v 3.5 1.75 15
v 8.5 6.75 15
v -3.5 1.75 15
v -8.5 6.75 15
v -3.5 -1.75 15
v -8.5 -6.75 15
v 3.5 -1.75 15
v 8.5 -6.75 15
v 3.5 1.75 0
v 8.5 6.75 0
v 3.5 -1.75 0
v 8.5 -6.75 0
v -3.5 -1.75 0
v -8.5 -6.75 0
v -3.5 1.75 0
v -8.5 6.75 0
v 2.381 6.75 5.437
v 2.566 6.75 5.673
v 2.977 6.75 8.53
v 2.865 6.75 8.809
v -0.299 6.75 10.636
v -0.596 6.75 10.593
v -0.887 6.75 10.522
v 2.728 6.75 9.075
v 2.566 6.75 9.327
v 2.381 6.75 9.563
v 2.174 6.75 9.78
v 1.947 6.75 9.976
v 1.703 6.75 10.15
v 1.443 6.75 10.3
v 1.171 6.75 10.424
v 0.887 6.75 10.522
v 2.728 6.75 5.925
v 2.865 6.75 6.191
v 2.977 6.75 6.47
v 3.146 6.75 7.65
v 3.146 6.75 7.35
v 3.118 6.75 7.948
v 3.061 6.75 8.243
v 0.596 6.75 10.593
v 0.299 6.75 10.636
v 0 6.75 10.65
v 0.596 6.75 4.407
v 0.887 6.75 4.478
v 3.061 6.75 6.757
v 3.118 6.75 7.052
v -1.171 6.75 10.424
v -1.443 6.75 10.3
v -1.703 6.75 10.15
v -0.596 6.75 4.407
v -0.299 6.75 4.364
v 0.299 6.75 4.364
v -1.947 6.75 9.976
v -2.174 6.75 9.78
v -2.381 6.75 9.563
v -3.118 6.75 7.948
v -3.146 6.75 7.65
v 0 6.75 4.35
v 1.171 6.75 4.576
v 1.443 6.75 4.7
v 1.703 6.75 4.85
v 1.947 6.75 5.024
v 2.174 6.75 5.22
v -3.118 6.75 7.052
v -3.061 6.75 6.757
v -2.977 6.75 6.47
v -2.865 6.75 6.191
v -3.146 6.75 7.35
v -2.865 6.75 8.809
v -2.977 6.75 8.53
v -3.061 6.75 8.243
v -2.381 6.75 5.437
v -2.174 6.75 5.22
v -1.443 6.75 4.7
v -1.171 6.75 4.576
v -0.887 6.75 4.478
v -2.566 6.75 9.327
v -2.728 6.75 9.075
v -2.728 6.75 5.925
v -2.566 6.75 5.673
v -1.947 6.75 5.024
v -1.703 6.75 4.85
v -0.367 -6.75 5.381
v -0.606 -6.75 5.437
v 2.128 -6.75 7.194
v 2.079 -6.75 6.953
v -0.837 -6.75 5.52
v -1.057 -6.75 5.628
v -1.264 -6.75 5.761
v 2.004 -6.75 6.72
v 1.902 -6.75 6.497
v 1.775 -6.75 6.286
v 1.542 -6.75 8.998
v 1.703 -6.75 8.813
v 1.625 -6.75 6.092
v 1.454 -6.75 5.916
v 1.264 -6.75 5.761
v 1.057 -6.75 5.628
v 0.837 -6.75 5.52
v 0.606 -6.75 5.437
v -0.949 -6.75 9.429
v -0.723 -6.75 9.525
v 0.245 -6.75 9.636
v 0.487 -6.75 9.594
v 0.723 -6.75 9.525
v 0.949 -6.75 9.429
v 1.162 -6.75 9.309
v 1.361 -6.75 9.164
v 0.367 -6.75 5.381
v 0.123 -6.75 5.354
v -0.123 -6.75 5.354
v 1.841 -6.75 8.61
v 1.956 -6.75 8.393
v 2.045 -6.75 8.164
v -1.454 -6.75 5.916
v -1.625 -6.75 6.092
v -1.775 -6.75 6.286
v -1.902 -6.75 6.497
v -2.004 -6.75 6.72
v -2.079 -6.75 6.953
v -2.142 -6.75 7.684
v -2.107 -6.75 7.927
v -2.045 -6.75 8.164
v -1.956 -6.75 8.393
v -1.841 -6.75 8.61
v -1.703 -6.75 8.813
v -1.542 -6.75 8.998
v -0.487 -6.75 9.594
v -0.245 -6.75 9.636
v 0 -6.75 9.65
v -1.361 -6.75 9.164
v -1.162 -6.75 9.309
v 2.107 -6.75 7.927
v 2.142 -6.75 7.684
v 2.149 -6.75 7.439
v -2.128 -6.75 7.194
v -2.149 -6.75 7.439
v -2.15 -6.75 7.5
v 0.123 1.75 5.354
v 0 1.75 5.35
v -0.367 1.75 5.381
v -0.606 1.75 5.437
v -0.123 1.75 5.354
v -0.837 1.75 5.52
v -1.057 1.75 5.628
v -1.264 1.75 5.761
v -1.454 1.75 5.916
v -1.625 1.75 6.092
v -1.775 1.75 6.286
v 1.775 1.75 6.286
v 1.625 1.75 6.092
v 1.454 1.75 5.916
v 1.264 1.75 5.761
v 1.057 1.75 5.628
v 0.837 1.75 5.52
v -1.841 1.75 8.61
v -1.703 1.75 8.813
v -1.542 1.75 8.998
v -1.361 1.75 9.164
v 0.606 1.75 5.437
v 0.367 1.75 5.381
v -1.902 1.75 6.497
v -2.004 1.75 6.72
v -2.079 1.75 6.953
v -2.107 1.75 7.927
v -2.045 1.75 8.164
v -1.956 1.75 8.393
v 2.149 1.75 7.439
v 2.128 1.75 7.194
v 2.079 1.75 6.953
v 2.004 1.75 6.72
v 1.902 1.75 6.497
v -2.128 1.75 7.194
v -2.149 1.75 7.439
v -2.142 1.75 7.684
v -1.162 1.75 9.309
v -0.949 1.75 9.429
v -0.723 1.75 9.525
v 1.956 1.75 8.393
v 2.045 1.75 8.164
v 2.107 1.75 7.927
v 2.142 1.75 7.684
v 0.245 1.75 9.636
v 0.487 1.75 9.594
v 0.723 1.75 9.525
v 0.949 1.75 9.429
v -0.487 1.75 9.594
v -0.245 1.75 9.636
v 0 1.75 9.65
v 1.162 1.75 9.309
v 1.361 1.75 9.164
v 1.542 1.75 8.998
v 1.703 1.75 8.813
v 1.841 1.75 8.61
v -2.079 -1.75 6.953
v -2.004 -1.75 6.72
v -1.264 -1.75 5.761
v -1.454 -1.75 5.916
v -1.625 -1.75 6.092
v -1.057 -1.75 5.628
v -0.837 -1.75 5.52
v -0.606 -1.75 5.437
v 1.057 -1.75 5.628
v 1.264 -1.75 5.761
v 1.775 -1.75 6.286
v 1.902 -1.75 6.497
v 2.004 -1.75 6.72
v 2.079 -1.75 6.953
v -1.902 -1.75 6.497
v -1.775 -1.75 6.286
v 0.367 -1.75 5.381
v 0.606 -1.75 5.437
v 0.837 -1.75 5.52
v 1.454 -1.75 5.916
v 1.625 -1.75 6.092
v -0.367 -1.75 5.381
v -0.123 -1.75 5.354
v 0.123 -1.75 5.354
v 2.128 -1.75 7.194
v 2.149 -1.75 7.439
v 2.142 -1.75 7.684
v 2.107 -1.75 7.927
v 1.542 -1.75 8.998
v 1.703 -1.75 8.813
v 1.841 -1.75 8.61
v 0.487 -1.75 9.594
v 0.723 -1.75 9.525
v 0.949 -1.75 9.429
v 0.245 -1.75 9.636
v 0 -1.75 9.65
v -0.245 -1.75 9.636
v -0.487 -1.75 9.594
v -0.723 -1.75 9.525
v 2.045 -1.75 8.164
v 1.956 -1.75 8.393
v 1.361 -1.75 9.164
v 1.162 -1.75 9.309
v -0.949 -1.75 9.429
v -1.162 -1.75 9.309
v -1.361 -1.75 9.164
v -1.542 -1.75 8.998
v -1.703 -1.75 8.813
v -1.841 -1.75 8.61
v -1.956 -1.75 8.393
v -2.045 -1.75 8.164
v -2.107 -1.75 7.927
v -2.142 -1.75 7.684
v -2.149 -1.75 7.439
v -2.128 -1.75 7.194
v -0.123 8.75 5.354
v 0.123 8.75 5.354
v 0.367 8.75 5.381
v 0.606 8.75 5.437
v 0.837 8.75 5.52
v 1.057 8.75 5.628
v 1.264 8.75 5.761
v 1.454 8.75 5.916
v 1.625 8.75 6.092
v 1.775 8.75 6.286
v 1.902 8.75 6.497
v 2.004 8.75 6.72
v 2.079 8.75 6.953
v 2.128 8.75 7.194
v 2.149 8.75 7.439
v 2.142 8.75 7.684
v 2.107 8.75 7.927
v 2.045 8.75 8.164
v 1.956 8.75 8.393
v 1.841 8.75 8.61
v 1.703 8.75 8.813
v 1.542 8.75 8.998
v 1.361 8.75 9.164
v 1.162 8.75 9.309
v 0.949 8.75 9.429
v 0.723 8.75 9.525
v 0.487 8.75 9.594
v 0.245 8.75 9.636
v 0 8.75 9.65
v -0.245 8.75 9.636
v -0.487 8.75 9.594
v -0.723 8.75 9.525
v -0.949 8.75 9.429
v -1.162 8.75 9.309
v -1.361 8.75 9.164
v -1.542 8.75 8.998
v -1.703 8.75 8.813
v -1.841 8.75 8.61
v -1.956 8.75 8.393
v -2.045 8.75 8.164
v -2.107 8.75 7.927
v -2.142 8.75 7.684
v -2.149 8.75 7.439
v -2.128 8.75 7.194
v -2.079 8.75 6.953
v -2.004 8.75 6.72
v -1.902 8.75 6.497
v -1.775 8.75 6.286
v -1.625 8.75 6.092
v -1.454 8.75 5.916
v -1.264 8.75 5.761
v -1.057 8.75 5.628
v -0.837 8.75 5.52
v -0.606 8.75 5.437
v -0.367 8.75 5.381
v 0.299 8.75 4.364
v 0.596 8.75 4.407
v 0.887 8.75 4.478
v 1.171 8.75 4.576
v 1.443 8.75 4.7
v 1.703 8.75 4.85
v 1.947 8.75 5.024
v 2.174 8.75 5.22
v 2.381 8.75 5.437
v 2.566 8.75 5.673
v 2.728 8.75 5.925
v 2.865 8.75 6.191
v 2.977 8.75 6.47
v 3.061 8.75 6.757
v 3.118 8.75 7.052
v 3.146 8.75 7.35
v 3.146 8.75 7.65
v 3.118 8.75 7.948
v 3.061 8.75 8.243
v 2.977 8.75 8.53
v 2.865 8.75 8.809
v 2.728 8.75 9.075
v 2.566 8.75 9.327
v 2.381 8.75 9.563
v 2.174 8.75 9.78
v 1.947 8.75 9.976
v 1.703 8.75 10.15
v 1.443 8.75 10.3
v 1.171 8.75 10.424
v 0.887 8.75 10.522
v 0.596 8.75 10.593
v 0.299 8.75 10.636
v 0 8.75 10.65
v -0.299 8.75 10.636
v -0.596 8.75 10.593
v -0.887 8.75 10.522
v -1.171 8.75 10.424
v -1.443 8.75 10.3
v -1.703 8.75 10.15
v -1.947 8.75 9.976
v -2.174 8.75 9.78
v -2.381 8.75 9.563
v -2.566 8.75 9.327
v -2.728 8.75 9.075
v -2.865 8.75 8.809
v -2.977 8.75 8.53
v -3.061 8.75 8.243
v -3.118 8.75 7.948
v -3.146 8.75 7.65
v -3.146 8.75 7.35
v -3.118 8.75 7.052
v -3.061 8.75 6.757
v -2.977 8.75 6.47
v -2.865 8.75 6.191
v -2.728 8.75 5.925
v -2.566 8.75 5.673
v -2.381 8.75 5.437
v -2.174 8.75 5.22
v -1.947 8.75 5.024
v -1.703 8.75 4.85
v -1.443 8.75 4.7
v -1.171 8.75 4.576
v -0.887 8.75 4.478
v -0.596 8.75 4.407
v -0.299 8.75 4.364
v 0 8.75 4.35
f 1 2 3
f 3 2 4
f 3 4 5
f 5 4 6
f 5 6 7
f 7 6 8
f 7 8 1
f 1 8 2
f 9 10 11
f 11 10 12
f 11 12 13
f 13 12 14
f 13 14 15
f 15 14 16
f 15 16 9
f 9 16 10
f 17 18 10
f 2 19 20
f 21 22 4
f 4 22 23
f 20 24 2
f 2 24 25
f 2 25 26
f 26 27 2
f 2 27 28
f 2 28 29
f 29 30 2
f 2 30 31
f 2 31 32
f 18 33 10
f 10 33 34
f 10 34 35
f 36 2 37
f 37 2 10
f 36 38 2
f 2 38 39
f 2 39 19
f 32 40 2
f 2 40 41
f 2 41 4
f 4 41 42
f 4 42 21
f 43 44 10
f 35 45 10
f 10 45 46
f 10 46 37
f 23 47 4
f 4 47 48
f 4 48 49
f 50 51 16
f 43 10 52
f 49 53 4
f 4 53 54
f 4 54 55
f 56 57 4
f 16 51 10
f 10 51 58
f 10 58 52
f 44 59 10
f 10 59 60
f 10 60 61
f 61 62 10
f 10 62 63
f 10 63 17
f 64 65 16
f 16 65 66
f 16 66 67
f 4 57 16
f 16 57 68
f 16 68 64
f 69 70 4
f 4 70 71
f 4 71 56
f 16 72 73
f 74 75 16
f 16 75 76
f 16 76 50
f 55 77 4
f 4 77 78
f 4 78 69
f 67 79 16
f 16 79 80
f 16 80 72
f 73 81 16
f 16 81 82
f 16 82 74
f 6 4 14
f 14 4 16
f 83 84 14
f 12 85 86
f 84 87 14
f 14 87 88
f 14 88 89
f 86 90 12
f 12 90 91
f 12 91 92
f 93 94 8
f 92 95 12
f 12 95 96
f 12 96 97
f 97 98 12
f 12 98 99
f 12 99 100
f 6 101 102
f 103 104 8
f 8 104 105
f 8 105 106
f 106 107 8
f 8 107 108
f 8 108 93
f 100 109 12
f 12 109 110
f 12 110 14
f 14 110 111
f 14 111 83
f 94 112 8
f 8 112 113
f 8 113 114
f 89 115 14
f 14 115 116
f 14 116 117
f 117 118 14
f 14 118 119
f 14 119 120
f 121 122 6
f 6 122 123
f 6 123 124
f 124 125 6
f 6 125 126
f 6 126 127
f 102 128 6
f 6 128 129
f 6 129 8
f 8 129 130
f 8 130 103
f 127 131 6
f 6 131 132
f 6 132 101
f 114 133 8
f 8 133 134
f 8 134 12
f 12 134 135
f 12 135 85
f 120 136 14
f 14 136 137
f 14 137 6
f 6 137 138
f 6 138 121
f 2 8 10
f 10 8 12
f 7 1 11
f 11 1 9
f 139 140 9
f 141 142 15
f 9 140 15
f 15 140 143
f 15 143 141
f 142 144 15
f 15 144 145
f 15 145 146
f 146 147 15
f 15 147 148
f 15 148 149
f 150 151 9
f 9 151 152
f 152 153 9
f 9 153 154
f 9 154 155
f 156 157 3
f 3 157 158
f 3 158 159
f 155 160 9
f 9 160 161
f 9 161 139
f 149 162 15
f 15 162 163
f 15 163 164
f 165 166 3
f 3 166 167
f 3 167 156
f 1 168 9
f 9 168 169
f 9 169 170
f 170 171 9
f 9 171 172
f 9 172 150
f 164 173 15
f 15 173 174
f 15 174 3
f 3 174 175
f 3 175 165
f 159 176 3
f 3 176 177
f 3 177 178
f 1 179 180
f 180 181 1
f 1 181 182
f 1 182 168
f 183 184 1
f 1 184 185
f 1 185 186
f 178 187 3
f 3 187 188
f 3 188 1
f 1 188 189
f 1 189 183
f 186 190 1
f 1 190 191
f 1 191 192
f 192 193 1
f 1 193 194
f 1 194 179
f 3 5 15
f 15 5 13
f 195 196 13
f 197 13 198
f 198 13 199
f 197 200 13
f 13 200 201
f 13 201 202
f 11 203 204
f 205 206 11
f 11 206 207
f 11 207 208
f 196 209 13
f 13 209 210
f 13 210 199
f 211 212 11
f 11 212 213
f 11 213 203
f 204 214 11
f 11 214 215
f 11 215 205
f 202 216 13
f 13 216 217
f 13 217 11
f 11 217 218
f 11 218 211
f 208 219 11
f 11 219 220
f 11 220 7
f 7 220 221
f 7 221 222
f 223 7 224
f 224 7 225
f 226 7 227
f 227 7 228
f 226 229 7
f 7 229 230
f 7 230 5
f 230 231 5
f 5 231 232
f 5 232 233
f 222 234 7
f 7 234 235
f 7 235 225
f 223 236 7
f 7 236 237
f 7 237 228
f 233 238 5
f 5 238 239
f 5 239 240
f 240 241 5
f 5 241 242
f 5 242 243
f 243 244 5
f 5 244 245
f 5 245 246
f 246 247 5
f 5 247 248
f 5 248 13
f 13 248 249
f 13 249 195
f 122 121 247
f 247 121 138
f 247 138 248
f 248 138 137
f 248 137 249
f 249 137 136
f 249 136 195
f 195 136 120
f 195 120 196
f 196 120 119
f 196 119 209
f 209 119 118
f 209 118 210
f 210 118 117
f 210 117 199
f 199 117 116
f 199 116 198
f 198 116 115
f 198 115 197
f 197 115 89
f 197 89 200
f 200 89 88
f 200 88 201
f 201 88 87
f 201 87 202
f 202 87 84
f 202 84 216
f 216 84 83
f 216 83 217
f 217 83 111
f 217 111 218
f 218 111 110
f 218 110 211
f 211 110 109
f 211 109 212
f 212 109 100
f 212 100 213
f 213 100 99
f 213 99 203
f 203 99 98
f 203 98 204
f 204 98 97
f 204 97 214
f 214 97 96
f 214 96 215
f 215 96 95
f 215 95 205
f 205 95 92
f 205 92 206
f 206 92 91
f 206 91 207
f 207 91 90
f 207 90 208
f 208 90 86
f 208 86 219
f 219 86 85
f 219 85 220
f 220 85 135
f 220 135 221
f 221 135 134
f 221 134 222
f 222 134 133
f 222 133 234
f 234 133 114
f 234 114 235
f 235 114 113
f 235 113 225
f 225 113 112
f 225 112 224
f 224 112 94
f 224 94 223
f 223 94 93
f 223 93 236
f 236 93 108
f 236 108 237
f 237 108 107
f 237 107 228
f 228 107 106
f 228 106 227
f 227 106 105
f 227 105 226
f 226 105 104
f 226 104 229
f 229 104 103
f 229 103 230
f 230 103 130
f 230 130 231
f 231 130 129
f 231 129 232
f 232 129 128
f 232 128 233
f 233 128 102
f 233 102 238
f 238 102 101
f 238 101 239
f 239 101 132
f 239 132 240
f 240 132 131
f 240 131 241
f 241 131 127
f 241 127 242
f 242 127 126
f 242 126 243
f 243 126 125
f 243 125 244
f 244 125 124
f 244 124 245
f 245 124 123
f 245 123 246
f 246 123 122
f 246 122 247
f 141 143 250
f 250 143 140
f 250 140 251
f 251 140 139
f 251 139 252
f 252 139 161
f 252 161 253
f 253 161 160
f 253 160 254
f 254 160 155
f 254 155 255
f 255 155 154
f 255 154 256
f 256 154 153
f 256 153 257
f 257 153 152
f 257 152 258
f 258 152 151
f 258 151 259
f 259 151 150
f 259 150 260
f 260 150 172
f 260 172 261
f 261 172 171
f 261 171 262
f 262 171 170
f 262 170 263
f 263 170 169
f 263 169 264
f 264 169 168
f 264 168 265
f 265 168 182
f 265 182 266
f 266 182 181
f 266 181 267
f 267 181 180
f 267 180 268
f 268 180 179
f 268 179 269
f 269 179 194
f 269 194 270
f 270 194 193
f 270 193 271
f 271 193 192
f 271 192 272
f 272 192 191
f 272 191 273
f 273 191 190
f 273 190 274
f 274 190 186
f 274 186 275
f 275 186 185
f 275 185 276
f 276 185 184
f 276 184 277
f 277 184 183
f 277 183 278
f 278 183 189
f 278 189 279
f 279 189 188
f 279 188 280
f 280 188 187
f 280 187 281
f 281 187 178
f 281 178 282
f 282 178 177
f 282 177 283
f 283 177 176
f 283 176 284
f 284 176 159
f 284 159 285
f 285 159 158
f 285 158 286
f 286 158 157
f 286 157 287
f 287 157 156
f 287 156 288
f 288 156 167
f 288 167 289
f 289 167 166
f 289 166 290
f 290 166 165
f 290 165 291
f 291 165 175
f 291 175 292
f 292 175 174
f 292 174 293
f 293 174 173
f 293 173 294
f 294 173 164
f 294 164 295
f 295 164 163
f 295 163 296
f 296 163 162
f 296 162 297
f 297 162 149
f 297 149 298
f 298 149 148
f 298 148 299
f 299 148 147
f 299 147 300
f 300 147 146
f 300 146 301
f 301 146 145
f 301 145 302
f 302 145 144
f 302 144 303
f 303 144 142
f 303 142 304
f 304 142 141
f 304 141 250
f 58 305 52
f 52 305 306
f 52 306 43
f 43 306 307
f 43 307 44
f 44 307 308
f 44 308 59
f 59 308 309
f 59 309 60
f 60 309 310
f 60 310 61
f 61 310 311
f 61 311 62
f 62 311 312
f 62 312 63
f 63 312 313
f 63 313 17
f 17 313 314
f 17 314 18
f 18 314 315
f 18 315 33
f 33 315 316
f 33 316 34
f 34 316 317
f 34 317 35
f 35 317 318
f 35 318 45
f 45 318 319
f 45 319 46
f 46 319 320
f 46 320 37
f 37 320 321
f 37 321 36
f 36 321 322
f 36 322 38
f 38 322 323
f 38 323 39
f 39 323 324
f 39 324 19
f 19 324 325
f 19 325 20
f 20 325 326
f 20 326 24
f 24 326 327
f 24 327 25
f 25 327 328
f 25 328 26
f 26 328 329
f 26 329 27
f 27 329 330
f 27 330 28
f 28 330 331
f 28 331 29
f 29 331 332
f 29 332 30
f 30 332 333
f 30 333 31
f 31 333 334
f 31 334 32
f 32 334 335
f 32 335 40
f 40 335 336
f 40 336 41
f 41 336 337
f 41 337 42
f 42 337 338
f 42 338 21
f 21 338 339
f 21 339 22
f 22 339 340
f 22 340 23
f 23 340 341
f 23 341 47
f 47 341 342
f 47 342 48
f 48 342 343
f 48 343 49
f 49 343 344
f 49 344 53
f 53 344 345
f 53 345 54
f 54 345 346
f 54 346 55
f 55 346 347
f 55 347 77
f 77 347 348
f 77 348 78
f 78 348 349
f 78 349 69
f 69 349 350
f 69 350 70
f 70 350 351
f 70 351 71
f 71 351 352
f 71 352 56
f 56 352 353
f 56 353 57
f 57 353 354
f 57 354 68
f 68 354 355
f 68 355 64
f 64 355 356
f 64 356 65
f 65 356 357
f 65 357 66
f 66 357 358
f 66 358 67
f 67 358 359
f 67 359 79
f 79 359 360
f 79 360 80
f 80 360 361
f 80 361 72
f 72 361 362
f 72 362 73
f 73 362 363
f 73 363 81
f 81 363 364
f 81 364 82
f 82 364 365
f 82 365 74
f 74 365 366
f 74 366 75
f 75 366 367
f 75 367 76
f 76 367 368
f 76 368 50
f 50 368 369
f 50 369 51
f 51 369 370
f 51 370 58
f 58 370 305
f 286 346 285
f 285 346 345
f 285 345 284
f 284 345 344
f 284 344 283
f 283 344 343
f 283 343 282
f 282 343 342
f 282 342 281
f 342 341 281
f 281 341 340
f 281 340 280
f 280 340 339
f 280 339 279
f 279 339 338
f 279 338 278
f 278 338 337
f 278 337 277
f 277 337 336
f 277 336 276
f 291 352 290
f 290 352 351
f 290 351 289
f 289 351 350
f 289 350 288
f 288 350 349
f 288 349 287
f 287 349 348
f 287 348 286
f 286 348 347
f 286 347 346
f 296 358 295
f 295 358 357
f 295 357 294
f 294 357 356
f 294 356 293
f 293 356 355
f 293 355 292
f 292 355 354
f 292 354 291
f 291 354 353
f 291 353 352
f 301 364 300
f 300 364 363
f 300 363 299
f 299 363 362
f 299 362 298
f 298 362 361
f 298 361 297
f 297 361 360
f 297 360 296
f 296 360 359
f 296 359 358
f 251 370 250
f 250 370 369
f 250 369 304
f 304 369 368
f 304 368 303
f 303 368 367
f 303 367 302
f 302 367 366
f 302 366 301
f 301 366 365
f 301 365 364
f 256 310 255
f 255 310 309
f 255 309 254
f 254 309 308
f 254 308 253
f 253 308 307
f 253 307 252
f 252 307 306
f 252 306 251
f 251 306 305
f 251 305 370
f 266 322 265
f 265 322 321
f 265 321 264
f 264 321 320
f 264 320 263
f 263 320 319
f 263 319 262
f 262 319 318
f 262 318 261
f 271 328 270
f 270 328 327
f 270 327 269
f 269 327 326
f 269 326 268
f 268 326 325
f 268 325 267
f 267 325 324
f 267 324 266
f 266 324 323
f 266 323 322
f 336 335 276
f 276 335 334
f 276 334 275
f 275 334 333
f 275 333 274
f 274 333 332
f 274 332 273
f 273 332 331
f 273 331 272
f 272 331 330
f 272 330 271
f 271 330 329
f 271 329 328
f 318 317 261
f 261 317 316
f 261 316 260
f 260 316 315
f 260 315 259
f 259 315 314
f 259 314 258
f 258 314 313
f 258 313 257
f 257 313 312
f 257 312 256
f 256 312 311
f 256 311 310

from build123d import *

# Parameters (mm, degrees)
SKETCH2_W           = 17
SKETCH2_H           = 13.5
SKETCH2_W_2         = 7
SKETCH2_H_2         = 3.5
BOSS_EXTRUDE1_DEPTH = 15
SKETCH3_R           = 2.15
CUT_EXTRUDE1_DEPTH  = 15
BOSS_EXTRUDE2_START = 2
SKETCH4_R           = 3.15
SKETCH4_R_2         = 2.15
BOSS_EXTRUDE2_DEPTH = 2


with BuildPart() as part:
    # Sketch2 → Boss-Extrude1 (new body)
    with BuildSketch(Plane.XY):
        Rectangle(SKETCH2_W, SKETCH2_H)
        Rectangle(SKETCH2_W_2, SKETCH2_H_2, mode=Mode.SUBTRACT)
    extrude(amount=BOSS_EXTRUDE1_DEPTH)

    # Sketch3 → Cut-Extrude1 (cut)
    with BuildSketch(Plane(origin=(0, 6.75, 0), x_dir=(1, 0, 0), z_dir=(0, 1, 0))):
        with Locations(Location((0, -7.5, 0), (0, 0, 270))):
            Circle(SKETCH3_R)
    extrude(amount=-CUT_EXTRUDE1_DEPTH, mode=Mode.SUBTRACT)

    # Sketch4 → Boss-Extrude2 (add)
    with BuildSketch(Plane(origin=(0, 6.75, 0), x_dir=(1, 0, 0), z_dir=(0, 1, 0)).offset(BOSS_EXTRUDE2_START)):
        with Locations(Location((0, -7.5, 0), (0, 0, 90))):
            Circle(SKETCH4_R)
        with Locations(Location((0, -7.5, 0), (0, 0, 270))):
            Circle(SKETCH4_R_2, mode=Mode.SUBTRACT)
    extrude(amount=-BOSS_EXTRUDE2_DEPTH)


solid = part.part
